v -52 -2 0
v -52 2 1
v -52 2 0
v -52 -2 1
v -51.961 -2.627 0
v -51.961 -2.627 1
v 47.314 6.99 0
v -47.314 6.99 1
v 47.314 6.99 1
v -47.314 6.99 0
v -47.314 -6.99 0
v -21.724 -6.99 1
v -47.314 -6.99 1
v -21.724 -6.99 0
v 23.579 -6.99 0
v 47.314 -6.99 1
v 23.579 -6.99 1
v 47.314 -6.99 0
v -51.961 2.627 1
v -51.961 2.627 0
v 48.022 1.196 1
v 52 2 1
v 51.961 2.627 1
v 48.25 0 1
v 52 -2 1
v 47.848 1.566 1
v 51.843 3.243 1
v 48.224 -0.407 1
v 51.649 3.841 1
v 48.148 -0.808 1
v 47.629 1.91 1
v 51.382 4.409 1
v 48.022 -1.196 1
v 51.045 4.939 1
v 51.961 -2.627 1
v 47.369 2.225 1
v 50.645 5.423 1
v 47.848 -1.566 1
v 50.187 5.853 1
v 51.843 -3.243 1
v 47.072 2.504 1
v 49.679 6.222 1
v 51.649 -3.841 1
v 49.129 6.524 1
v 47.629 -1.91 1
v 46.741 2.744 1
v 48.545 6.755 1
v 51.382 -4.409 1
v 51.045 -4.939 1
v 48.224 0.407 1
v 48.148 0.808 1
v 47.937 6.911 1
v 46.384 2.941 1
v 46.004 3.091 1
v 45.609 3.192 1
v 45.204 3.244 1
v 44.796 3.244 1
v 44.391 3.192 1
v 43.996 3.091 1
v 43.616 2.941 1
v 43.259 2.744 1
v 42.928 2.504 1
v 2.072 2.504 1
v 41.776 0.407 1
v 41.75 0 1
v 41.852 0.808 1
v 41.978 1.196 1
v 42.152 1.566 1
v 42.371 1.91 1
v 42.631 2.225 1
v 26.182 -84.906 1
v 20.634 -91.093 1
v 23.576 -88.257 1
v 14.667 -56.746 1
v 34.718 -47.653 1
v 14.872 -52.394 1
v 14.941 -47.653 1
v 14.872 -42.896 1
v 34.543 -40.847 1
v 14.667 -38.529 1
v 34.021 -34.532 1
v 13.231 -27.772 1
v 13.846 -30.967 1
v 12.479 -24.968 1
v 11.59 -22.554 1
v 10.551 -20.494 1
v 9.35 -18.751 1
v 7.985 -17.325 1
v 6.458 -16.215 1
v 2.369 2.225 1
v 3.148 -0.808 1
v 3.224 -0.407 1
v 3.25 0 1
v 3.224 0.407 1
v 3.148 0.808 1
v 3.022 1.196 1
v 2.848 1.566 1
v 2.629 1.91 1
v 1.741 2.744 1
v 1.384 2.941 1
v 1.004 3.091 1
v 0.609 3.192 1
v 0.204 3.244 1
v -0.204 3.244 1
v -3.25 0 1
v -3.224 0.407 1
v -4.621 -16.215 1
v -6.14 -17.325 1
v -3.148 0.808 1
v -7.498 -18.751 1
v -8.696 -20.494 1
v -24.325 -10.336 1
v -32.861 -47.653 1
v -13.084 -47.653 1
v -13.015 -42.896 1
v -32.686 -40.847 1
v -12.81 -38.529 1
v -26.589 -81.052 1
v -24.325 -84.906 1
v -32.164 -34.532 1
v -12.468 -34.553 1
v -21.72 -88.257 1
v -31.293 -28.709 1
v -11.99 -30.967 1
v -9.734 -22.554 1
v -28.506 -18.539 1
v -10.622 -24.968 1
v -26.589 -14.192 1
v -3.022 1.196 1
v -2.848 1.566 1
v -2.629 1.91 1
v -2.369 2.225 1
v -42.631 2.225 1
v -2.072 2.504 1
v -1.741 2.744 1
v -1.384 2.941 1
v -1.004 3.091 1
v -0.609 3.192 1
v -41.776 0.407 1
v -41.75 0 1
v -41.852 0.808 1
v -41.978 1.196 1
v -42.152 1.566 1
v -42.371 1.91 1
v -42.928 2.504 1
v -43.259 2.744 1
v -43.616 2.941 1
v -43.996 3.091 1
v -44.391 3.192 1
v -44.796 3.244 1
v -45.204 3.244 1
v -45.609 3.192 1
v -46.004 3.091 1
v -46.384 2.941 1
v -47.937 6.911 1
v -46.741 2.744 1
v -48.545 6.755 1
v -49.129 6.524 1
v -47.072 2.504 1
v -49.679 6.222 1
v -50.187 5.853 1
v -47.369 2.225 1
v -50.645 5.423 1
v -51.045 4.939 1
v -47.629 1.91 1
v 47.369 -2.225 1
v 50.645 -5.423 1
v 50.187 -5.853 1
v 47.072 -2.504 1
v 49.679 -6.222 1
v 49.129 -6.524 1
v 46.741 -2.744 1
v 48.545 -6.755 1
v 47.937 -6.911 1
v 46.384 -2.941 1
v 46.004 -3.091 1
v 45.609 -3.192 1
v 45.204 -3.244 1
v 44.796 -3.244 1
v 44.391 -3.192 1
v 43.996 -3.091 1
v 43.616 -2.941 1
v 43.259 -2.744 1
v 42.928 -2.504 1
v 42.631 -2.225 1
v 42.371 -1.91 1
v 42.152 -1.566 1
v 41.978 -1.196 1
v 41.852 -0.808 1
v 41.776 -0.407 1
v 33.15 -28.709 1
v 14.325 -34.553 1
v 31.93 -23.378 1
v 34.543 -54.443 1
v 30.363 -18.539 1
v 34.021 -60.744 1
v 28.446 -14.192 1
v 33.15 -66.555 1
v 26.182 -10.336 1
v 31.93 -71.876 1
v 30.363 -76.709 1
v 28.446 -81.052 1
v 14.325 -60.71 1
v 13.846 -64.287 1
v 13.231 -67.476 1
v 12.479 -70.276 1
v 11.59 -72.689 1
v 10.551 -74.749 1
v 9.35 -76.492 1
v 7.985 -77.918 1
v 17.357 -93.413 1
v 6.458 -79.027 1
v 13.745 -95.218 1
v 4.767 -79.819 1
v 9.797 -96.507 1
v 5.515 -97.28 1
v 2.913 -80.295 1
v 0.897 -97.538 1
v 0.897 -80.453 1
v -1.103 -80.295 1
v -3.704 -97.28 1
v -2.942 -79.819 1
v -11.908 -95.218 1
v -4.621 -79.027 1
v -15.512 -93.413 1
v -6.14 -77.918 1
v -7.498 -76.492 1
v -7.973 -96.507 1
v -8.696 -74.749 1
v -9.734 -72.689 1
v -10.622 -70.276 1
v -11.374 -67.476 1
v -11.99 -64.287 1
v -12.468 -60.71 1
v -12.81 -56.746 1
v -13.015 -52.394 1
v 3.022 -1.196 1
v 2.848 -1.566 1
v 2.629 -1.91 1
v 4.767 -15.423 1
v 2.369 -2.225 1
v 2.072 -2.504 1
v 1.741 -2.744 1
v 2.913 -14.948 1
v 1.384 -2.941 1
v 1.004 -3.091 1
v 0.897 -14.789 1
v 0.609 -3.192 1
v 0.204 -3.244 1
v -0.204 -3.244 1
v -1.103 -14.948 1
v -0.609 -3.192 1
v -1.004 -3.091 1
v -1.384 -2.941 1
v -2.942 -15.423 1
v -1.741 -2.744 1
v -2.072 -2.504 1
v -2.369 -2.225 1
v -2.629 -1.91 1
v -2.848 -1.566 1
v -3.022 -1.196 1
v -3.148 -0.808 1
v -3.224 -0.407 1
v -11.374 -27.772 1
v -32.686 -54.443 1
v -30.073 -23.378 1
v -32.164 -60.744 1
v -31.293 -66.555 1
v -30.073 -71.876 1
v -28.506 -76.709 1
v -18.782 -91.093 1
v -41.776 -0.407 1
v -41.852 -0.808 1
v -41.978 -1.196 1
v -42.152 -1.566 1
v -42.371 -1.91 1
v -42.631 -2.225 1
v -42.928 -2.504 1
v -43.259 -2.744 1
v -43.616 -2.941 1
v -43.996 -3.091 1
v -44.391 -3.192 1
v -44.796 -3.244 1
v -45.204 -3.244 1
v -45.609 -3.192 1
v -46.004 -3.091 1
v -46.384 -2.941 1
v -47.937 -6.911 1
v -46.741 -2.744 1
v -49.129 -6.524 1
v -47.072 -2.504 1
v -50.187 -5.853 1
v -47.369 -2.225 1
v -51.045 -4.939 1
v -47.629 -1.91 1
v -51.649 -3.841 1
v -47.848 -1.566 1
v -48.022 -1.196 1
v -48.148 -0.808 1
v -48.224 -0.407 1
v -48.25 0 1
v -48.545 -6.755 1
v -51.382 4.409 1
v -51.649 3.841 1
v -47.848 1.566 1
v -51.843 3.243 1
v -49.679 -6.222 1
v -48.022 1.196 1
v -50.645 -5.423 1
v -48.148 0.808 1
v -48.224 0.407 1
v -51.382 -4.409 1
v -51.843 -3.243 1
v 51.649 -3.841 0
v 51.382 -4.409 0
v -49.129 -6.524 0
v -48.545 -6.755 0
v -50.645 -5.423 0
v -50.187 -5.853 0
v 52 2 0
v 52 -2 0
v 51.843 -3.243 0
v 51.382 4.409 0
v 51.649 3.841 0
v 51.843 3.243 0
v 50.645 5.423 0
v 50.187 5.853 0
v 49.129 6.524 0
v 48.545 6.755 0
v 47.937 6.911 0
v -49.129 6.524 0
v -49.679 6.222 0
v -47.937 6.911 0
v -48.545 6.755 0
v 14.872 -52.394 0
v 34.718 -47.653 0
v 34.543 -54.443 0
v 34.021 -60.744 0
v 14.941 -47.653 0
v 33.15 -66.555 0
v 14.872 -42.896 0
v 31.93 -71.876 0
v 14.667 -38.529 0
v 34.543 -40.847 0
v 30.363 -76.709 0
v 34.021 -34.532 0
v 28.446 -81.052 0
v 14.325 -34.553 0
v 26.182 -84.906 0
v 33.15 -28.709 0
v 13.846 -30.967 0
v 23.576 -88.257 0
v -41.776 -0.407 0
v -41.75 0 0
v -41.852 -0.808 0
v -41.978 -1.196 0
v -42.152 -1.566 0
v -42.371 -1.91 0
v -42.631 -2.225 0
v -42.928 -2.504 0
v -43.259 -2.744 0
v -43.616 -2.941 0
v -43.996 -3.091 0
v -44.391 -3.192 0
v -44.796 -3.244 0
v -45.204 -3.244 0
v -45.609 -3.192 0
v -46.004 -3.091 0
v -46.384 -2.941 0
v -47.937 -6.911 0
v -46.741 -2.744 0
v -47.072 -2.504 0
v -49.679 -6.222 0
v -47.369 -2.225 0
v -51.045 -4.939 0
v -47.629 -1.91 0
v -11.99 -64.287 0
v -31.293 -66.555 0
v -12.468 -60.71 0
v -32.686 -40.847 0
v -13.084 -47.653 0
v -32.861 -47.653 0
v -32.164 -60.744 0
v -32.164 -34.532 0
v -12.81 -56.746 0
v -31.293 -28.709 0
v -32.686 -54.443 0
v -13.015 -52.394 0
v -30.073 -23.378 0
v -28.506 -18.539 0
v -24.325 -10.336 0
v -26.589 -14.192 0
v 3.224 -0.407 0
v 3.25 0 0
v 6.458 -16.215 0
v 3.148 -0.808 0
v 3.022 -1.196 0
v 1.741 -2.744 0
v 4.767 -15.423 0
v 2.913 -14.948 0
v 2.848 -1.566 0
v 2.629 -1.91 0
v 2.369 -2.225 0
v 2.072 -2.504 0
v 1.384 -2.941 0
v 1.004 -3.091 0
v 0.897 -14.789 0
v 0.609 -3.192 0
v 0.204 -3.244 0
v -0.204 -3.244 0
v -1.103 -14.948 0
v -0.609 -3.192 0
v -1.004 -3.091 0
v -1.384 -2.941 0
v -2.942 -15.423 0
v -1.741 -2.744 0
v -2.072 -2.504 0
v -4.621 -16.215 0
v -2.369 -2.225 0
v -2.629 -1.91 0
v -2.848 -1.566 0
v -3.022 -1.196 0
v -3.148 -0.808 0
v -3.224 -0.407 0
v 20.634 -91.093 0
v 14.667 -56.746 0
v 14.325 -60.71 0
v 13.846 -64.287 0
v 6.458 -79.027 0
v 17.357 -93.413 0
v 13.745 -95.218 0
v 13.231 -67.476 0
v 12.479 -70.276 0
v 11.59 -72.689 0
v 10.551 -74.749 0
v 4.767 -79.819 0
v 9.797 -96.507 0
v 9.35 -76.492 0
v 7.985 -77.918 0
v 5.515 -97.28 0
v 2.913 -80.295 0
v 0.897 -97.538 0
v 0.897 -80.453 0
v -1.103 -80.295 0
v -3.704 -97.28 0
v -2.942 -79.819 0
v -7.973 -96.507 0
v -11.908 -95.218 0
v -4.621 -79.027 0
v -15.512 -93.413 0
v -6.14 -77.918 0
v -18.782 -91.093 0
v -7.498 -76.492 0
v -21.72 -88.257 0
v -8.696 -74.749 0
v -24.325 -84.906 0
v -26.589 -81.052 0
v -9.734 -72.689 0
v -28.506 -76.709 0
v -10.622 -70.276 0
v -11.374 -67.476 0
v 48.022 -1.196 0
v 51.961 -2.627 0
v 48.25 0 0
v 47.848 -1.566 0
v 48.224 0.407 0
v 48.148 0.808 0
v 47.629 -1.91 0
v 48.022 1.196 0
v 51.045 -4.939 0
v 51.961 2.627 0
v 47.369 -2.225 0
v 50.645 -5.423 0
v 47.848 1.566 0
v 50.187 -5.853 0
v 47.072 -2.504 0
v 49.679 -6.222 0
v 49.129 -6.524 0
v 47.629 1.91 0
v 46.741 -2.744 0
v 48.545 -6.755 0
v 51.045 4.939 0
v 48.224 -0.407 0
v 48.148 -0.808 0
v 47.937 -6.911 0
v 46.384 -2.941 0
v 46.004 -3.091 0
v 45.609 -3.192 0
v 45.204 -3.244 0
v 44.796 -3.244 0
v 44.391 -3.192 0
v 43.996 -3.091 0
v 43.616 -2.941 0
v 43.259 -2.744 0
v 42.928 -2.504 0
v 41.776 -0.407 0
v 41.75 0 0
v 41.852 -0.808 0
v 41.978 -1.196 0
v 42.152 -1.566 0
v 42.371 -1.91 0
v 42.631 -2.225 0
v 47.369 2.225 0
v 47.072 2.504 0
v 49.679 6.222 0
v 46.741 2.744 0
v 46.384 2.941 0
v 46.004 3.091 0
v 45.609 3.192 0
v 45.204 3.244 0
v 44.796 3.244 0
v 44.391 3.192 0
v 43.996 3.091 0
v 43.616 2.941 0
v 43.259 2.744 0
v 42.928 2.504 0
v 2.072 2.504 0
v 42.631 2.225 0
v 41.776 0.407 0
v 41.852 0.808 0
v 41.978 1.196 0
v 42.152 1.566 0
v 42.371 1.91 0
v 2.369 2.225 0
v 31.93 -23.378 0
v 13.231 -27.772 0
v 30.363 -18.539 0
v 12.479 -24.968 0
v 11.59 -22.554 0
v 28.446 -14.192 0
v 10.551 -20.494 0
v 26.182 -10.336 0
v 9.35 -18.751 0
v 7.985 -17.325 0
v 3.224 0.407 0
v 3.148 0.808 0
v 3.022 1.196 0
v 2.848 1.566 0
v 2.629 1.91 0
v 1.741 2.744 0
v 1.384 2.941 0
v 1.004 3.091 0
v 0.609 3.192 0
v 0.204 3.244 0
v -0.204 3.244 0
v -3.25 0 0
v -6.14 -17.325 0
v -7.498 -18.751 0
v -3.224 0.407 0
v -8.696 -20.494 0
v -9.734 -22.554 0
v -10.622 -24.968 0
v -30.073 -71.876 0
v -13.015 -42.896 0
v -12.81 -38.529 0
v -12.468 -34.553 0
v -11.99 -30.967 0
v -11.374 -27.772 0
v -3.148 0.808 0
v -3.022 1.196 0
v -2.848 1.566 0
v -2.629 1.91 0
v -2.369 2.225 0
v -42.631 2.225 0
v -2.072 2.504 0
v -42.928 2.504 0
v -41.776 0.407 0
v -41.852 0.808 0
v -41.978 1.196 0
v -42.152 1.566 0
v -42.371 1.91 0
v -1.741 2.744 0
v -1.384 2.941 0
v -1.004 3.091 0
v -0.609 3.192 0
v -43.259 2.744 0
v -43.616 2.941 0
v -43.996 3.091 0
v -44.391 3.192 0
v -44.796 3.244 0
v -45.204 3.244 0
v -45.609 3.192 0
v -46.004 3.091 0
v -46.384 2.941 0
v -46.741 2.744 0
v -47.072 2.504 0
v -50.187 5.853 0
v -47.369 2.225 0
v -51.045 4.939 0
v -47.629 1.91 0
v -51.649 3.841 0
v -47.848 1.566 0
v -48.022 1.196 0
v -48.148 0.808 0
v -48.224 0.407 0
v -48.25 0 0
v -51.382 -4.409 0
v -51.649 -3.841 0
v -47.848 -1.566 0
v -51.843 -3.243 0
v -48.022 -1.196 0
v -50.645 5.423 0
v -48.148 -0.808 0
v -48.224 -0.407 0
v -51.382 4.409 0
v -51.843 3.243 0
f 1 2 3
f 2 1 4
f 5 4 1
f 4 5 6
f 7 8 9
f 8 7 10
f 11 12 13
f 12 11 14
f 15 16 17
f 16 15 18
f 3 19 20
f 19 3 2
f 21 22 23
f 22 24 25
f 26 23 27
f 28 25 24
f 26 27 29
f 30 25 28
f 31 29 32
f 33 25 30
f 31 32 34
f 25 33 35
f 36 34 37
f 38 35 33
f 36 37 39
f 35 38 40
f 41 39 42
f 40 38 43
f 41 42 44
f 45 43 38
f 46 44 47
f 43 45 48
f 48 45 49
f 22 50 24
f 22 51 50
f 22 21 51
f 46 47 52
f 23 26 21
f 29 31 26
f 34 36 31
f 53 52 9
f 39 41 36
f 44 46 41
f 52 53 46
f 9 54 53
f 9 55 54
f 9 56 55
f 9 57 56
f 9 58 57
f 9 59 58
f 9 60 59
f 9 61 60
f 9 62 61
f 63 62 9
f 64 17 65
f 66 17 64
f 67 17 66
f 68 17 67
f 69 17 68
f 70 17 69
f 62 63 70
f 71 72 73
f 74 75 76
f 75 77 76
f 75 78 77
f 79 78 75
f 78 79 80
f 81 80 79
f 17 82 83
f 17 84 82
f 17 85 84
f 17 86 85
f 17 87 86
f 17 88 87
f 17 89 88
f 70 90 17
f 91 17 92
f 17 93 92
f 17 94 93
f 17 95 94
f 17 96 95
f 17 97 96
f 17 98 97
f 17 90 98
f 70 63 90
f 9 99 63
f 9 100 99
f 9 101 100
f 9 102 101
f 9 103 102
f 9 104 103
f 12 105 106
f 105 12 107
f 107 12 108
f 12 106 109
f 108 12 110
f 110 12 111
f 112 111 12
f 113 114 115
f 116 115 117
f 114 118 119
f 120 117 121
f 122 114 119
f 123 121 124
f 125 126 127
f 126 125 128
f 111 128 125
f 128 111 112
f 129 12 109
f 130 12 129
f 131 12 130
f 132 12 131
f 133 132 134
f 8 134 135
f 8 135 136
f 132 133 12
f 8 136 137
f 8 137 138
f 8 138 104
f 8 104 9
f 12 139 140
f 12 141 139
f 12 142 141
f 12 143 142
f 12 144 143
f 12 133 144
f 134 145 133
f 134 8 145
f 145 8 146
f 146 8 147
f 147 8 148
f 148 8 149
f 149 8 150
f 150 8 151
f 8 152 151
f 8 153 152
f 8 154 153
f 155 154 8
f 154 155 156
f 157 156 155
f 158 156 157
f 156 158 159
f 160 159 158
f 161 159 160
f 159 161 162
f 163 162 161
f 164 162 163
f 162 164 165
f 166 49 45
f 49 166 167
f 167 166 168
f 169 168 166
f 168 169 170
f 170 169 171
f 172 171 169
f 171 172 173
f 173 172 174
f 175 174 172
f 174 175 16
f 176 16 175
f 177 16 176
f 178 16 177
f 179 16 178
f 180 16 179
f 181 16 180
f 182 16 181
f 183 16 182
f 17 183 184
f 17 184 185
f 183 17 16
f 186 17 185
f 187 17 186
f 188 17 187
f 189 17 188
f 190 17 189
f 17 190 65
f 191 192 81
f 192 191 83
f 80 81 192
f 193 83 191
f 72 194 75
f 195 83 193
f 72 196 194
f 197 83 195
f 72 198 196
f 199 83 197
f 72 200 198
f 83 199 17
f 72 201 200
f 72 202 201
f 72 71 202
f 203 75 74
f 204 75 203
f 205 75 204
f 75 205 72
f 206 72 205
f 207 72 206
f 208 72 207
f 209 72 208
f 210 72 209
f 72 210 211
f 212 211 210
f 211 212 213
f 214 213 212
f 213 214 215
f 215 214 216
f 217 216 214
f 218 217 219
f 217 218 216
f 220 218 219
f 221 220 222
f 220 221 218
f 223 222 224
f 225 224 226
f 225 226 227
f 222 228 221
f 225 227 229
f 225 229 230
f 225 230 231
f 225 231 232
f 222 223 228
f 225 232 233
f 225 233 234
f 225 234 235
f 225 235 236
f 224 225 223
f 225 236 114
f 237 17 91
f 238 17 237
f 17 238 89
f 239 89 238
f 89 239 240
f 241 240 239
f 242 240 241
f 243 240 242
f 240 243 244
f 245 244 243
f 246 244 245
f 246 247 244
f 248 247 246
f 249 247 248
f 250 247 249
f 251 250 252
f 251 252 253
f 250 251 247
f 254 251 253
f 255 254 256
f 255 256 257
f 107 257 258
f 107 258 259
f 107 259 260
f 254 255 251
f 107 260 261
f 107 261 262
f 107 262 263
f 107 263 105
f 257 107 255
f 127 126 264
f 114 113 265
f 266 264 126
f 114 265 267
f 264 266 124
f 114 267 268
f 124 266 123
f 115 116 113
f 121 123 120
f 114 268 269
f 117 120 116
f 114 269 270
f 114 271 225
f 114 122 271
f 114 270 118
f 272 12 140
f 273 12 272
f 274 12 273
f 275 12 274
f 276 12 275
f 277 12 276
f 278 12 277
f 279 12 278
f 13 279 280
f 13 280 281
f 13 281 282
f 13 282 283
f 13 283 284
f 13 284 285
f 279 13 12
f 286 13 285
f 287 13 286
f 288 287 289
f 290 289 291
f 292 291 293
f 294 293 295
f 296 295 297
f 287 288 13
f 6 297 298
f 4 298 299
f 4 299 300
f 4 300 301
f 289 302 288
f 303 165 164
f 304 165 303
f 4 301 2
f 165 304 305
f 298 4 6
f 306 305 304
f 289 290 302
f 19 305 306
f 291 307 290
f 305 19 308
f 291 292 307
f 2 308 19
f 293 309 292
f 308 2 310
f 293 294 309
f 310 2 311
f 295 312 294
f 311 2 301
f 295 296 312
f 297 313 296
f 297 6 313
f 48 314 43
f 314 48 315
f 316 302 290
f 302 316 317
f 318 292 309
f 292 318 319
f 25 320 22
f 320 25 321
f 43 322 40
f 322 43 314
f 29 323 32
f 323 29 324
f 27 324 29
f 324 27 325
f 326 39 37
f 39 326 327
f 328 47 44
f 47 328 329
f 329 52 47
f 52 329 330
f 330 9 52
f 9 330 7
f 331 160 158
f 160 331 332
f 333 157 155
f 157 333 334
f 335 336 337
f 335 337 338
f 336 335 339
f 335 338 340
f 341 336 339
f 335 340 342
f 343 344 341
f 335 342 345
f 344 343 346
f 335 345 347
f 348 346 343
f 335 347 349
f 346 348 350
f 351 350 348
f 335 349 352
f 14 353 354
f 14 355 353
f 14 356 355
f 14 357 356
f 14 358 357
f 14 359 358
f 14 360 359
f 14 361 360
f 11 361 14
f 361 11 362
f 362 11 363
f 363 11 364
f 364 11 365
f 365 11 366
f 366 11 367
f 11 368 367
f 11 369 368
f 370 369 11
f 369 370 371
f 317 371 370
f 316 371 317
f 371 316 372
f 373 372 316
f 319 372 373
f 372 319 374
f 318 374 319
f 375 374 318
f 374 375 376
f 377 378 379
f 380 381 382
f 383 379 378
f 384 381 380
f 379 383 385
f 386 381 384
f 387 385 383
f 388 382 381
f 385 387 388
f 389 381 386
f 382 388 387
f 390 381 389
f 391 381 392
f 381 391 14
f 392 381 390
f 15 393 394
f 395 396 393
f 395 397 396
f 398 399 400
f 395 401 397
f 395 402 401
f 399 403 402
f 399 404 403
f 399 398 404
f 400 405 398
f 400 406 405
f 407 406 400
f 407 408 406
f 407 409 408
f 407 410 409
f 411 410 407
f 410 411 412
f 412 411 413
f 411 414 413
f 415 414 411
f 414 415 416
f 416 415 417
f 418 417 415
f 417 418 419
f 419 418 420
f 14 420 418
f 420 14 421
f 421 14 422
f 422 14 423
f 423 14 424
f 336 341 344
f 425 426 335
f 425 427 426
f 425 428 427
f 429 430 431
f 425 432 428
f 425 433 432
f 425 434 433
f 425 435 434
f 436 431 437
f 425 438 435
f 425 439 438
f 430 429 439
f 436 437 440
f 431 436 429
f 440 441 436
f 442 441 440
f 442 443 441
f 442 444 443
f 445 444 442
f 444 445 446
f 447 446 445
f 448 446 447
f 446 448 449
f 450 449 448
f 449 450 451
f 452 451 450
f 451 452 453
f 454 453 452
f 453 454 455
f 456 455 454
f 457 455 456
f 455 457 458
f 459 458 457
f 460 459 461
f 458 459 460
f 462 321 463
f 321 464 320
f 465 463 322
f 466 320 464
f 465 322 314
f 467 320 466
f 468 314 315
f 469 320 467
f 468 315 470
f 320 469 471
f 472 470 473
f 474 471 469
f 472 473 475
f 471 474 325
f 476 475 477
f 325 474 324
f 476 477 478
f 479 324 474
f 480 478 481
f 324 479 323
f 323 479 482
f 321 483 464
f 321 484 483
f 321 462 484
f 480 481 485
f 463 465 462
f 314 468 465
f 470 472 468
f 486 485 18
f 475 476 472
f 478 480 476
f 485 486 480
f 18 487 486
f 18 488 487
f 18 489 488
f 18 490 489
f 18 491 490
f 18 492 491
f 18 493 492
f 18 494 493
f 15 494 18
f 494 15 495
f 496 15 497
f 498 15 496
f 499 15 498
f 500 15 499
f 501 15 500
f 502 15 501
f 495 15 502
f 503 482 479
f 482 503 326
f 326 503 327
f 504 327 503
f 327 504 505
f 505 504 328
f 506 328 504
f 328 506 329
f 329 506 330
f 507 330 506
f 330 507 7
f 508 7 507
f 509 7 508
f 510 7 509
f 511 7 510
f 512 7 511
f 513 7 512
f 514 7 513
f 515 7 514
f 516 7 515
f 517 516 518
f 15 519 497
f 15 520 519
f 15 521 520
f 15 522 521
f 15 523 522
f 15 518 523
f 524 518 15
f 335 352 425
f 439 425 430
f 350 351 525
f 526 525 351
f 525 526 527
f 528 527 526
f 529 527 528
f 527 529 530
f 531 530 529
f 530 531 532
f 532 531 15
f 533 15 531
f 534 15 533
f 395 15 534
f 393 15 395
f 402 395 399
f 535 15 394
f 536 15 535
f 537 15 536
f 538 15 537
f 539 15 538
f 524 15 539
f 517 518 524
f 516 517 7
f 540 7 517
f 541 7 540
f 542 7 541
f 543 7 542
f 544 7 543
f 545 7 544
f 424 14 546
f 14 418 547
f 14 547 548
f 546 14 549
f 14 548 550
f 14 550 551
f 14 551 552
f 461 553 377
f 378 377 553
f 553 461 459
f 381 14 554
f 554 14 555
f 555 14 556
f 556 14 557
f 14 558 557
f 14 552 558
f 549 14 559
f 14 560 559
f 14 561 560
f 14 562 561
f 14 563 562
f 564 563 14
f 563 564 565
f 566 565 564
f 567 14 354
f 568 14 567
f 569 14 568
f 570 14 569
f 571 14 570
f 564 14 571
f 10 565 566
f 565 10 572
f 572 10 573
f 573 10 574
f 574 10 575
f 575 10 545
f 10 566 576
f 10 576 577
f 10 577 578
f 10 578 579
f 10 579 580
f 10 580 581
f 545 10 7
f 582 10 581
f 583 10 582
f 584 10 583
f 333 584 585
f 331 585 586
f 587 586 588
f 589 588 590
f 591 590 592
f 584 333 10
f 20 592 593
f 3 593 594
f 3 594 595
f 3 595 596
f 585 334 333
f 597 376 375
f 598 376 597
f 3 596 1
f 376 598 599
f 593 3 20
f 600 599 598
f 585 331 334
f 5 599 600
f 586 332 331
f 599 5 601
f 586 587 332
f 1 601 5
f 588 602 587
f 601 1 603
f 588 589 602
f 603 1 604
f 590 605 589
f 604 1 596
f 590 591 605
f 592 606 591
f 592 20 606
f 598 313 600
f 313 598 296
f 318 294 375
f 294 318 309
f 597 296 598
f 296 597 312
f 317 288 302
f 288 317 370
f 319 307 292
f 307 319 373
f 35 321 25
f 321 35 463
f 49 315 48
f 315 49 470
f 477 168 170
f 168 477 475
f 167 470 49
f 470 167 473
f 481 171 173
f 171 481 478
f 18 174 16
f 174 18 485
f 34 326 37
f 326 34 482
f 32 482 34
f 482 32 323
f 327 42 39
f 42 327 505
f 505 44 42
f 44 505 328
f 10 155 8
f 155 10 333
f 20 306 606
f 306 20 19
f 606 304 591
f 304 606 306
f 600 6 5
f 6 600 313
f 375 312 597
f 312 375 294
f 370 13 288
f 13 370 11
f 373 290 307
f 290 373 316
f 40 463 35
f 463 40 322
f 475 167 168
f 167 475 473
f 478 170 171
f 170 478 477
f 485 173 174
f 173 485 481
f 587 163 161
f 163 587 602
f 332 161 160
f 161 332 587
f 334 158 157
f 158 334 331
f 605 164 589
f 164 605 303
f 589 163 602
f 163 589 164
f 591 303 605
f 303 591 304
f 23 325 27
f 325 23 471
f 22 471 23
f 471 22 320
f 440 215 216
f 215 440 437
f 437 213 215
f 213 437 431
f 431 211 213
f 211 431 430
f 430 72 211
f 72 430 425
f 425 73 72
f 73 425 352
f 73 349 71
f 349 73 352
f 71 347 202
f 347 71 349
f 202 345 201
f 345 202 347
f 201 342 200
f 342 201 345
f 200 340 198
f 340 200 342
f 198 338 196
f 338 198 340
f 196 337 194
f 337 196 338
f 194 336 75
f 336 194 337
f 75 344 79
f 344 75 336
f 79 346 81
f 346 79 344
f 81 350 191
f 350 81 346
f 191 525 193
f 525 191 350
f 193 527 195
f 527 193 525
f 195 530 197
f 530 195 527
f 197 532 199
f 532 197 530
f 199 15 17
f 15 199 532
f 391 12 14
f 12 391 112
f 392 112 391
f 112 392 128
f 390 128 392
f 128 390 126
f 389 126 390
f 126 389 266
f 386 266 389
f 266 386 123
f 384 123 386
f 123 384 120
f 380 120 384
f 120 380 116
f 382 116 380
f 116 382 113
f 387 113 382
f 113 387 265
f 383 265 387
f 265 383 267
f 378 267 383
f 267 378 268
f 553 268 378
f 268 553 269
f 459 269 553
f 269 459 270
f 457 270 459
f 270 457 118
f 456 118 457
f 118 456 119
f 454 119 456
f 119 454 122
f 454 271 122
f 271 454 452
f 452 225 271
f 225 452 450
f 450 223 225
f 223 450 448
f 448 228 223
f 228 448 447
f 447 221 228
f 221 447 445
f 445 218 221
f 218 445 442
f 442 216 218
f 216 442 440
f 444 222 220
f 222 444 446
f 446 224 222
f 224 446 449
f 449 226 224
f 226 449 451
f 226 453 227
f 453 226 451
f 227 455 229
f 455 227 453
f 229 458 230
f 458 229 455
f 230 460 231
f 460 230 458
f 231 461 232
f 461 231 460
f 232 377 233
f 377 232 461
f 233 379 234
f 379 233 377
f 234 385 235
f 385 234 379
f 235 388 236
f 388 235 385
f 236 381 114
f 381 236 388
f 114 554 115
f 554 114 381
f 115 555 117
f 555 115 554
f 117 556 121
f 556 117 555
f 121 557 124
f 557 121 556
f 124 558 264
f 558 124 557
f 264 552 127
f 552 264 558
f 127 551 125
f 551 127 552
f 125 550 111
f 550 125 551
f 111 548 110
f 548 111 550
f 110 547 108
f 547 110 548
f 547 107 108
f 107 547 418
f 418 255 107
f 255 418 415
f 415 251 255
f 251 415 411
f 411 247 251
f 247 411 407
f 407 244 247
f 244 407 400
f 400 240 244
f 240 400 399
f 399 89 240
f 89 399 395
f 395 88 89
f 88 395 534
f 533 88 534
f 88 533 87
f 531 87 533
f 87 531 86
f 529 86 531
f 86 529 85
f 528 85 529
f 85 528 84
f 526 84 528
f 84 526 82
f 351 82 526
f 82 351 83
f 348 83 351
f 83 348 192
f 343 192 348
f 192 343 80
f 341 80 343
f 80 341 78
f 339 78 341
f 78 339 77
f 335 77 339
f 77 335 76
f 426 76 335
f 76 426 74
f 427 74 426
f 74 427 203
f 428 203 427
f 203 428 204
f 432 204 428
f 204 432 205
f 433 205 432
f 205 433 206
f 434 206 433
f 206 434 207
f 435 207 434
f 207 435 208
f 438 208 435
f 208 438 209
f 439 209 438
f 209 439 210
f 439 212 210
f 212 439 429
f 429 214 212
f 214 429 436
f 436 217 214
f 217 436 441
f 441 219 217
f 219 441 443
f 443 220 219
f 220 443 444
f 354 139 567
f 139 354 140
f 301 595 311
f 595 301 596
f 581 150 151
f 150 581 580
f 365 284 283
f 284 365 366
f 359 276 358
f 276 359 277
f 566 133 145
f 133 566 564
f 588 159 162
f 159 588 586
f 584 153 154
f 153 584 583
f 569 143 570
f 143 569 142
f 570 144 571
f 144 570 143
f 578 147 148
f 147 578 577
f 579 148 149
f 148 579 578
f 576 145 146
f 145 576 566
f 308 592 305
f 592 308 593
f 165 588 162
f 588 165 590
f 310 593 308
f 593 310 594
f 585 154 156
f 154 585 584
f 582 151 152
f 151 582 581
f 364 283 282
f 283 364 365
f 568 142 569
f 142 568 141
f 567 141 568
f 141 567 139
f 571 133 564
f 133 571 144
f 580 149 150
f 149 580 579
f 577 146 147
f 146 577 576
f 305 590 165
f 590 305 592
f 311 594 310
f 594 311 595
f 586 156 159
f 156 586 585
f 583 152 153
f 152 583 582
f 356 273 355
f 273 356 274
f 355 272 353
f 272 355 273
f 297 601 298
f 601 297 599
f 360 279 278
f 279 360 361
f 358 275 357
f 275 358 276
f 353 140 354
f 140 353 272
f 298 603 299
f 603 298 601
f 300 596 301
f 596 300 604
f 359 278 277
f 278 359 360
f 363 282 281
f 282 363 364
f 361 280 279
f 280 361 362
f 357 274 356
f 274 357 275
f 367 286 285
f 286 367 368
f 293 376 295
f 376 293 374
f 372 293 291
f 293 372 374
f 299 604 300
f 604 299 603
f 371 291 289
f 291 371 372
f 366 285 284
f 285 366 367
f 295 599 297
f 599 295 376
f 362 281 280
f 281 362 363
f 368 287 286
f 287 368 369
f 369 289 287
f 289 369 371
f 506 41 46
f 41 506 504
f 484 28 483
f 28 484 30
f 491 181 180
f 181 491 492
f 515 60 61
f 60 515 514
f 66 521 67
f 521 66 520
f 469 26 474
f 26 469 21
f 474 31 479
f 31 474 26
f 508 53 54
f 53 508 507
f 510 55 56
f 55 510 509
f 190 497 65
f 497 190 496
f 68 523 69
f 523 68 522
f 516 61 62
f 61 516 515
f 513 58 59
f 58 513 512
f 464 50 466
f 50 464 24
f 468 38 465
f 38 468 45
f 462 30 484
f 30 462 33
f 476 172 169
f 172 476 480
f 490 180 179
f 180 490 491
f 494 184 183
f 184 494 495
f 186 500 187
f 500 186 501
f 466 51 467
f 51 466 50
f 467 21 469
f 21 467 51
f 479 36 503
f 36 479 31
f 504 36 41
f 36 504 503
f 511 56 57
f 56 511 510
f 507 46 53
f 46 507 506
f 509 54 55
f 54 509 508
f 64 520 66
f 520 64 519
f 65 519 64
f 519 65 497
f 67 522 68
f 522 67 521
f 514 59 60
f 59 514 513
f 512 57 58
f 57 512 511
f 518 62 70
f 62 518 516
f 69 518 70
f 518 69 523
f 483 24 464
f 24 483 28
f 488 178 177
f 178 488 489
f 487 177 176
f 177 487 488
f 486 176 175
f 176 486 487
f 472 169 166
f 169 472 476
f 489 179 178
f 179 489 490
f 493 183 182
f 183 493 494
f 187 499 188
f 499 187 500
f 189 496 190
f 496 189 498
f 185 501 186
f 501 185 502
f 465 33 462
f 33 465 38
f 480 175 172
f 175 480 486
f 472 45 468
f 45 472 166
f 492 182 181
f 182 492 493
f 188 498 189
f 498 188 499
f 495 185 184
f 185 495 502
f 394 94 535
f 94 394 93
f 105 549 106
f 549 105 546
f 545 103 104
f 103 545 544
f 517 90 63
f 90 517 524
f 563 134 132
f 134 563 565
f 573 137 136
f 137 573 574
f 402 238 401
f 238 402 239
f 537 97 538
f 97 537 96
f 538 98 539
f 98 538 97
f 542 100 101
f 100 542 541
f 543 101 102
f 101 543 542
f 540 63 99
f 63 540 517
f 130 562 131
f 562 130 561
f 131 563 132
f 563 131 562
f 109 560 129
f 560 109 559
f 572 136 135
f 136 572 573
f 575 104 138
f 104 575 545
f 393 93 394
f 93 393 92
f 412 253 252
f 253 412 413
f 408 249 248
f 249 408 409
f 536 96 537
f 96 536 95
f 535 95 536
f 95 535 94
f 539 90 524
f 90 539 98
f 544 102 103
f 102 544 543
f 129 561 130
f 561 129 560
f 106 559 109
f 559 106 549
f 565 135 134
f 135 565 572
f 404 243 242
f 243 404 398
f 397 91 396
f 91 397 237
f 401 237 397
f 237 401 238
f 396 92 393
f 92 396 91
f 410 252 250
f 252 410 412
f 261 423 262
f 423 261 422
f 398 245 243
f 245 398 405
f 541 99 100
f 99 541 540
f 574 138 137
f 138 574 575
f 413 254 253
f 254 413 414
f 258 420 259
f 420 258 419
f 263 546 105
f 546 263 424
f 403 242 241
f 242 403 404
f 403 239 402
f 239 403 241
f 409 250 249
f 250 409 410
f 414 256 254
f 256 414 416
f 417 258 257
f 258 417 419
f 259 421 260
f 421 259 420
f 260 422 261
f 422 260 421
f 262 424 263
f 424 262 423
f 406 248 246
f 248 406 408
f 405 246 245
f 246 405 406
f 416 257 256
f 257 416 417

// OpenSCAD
$fn = 50;


difference() {
	union() {
		translate(v = [0, 0, 0]) {
			rotate(a = [0, 0, 0]) {
				hull() {
					translate(v = [-47.0000000000, 2.0000000000, 0]) {
						rotate(a = [0, 0, 0]) {
							translate(v = [0, 0, 0]) {
								rotate(a = [0, 0, 0]) {
									cylinder(h = 1, r = 5);
								}
							}
						}
					}
					translate(v = [47.0000000000, 2.0000000000, 0]) {
						rotate(a = [0, 0, 0]) {
							translate(v = [0, 0, 0]) {
								rotate(a = [0, 0, 0]) {
									cylinder(h = 1, r = 5);
								}
							}
						}
					}
					translate(v = [-47.0000000000, -2.0000000000, 0]) {
						rotate(a = [0, 0, 0]) {
							translate(v = [0, 0, 0]) {
								rotate(a = [0, 0, 0]) {
									cylinder(h = 1, r = 5);
								}
							}
						}
					}
					translate(v = [47.0000000000, -2.0000000000, 0]) {
						rotate(a = [0, 0, 0]) {
							translate(v = [0, 0, 0]) {
								rotate(a = [0, 0, 0]) {
									cylinder(h = 1, r = 5);
								}
							}
						}
					}
				}
			}
		}
		translate(v = [0, 0, 0]) {
			rotate(a = [0, 0, 0]) {
				linear_extrude(height = 1) {
					text(font = "DejaVu Sans Mono:style=Bold", halign = "center", size = 95, text = "O", valign = "top");
				}
			}
		}
	}
	union() {
		translate(v = [-45.0000000000, 0.0000000000, -125.0000000000]) {
			rotate(a = [0, 0, 0]) {
				cylinder(h = 250, r = 3.2500000000);
			}
		}
		translate(v = [45.0000000000, 0.0000000000, -125.0000000000]) {
			rotate(a = [0, 0, 0]) {
				cylinder(h = 250, r = 3.2500000000);
			}
		}
		translate(v = [45.0000000000, 0.0000000000, -125.0000000000]) {
			rotate(a = [0, 0, 0]) {
				cylinder(h = 250, r = 3.2500000000);
			}
		}
		translate(v = [0, 0, -125.0000000000]) {
			rotate(a = [0, 0, 0]) {
				cylinder(h = 250, r = 3.2500000000);
			}
		}
	}
}
